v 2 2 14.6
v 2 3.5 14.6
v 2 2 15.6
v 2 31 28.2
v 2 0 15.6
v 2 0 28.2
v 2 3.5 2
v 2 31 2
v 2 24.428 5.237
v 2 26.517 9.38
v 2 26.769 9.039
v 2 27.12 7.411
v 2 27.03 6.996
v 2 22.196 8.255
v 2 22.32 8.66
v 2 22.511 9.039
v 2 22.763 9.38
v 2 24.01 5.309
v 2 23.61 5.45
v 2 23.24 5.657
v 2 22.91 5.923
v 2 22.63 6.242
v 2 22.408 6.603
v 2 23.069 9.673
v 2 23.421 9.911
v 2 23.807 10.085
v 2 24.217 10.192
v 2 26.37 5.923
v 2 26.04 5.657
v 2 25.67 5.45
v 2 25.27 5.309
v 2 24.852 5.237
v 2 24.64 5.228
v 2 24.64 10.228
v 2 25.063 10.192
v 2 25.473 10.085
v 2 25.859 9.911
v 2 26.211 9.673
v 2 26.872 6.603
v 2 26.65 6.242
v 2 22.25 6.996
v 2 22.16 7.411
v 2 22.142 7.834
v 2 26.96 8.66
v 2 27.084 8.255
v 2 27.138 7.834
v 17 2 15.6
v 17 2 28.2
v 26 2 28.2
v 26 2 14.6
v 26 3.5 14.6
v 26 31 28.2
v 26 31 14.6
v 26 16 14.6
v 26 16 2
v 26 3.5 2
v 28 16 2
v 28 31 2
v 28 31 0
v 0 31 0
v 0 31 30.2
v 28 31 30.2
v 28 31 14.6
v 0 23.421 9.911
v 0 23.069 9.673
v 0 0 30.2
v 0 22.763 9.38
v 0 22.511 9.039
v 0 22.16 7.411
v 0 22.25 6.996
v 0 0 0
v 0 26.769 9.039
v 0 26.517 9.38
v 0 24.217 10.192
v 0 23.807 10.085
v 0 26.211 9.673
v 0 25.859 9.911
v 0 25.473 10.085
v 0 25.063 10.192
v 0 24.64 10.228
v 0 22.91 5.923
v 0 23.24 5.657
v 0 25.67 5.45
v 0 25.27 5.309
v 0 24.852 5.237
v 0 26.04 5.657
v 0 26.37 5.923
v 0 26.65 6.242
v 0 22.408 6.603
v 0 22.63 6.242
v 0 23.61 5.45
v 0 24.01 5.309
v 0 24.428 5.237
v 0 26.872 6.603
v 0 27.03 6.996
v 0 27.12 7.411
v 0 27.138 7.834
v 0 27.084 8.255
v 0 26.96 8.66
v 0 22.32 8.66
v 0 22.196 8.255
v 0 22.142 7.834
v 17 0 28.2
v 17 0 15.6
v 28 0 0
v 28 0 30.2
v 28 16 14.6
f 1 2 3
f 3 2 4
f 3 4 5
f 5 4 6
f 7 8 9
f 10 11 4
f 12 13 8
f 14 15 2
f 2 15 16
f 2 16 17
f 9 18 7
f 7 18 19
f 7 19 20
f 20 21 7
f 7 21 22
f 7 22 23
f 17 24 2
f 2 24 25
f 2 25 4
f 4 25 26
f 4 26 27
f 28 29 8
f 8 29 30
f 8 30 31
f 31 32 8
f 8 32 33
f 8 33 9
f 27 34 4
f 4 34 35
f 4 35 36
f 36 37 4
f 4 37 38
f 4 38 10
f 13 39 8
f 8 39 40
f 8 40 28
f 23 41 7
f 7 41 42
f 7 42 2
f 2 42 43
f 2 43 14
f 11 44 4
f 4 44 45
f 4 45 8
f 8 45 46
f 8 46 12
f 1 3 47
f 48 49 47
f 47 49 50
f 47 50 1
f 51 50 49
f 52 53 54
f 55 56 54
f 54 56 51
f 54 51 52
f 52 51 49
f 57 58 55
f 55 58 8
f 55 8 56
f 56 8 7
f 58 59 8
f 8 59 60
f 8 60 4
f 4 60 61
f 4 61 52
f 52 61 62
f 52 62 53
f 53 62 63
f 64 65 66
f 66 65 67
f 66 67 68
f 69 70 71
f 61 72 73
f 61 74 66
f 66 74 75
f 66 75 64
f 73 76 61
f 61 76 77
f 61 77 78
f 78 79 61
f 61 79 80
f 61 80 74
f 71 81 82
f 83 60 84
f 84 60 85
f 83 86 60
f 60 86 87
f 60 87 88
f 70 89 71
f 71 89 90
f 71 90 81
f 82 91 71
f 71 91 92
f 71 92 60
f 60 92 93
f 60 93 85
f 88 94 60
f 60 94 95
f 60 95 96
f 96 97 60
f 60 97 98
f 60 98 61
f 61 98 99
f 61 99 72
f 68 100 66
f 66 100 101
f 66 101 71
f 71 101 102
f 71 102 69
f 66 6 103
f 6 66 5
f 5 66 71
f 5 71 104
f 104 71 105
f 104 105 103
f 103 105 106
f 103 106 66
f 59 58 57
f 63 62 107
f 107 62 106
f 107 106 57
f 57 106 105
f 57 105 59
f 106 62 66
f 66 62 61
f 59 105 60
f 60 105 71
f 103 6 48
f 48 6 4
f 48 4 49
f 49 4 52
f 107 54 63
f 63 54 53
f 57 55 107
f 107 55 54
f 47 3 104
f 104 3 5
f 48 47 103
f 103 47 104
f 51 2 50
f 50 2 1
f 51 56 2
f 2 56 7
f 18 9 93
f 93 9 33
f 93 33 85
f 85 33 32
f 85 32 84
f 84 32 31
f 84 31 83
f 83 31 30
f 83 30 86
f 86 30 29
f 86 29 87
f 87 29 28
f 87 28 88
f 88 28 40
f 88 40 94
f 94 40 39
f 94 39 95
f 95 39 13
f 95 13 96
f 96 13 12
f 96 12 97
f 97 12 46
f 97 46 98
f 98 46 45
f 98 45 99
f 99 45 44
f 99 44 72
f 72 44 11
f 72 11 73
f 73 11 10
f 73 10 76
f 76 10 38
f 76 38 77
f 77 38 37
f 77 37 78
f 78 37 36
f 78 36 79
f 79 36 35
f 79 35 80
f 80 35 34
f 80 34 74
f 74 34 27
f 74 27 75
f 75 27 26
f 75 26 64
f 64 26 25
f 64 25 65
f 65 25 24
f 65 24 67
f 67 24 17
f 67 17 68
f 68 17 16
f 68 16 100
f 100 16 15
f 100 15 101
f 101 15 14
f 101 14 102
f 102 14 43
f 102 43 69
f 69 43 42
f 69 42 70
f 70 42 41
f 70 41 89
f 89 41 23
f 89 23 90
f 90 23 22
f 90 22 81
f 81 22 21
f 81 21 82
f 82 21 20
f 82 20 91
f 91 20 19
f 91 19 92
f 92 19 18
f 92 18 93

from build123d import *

# Parameters (mm, degrees)
ESQUISSE1_W             = 28
ESQUISSE1_H             = 31
BOSS_EXTRU_1_DEPTH      = 30.2
COQUE1_T                = -2
ENL_V_MAT_EXTRU_1_REACH = 30
ESQUISSE2_W             = 12.6
ESQUISSE2_H             = 15
ENL_V_MAT_EXTRU_2_REACH = 4
ESQUISSE3_W             = 15
ESQUISSE3_H             = 12.6
ESQUISSE4_W             = 24
ESQUISSE4_H             = 12.6
BOSS_EXTRU_2_DEPTH      = 1.5
ENL_V_MAT_EXTRU_4_REACH = 30
ESQUISSE10_R            = 2.5


with BuildPart() as part:
    # Esquisse1 → Boss.-Extru.1 (new body)
    with BuildSketch(Plane.XY):
        with Locations((14, 15.5)):
            Rectangle(ESQUISSE1_W, ESQUISSE1_H)
    extrude(amount=BOSS_EXTRU_1_DEPTH)

    # Coque1
    coque1_openings = [part.faces().sort_by_distance(p)[0] for p in [
        (14, 31, 15.1),
    ]]
    offset(amount=COQUE1_T, openings=coque1_openings, kind=Kind.INTERSECTION)

    # Esquisse2 → Enlèv. mat.-Extru.1 (cut, up to next)
    with BuildSketch(Plane(origin=(28, 0, 0), x_dir=(0, 0, -1), z_dir=(1, 0, 0)), mode=Mode.PRIVATE) as enl_v_mat_extru_1_sk1:
        with Locations((-8.3, 23.5)):
            Rectangle(ESQUISSE2_W, ESQUISSE2_H)
    enl_v_mat_extru_1_tool1 = extrude(enl_v_mat_extru_1_sk1.sketch, amount=-ENL_V_MAT_EXTRU_1_REACH, mode=Mode.PRIVATE) & part.part
    add(enl_v_mat_extru_1_tool1.solids().sort_by_distance((28, 23.5, 8.3))[0], mode=Mode.SUBTRACT)

    # Esquisse3 → Enlèv. mat.-Extru.2 (cut, up to next)
    with BuildSketch(Plane(origin=(0, 2, 0), x_dir=(1, 0, 0), z_dir=(0, 1, 0)), mode=Mode.PRIVATE) as enl_v_mat_extru_2_sk1:
        with Locations((9.5, -21.9)):
            Rectangle(ESQUISSE3_W, ESQUISSE3_H)
    enl_v_mat_extru_2_tool1 = extrude(enl_v_mat_extru_2_sk1.sketch, amount=-ENL_V_MAT_EXTRU_2_REACH, mode=Mode.PRIVATE) & part.part
    add(enl_v_mat_extru_2_tool1.solids().sort_by_distance((9.5, 2, 21.9))[0], mode=Mode.SUBTRACT)

    # Esquisse4 → Boss.-Extru.2 (add)
    with BuildSketch(Plane(origin=(0, 2, 0), x_dir=(1, 0, 0), z_dir=(0, 1, 0))):
        with Locations((14, -8.3)):
            Rectangle(ESQUISSE4_W, ESQUISSE4_H)
    extrude(amount=BOSS_EXTRU_2_DEPTH)

    # Esquisse10 → Enlèv. mat.-Extru.4 (cut, up to next)
    with BuildSketch(Plane.ZY, mode=Mode.PRIVATE) as enl_v_mat_extru_4_sk1:
        with Locations((7.728265811, 24.64)):
            Circle(ESQUISSE10_R)
    enl_v_mat_extru_4_tool1 = extrude(enl_v_mat_extru_4_sk1.sketch, amount=-ENL_V_MAT_EXTRU_4_REACH, mode=Mode.PRIVATE) & part.part
    add(enl_v_mat_extru_4_tool1.solids().sort_by_distance((0, 24.64, 7.728266))[0], mode=Mode.SUBTRACT)


solid = part.part
